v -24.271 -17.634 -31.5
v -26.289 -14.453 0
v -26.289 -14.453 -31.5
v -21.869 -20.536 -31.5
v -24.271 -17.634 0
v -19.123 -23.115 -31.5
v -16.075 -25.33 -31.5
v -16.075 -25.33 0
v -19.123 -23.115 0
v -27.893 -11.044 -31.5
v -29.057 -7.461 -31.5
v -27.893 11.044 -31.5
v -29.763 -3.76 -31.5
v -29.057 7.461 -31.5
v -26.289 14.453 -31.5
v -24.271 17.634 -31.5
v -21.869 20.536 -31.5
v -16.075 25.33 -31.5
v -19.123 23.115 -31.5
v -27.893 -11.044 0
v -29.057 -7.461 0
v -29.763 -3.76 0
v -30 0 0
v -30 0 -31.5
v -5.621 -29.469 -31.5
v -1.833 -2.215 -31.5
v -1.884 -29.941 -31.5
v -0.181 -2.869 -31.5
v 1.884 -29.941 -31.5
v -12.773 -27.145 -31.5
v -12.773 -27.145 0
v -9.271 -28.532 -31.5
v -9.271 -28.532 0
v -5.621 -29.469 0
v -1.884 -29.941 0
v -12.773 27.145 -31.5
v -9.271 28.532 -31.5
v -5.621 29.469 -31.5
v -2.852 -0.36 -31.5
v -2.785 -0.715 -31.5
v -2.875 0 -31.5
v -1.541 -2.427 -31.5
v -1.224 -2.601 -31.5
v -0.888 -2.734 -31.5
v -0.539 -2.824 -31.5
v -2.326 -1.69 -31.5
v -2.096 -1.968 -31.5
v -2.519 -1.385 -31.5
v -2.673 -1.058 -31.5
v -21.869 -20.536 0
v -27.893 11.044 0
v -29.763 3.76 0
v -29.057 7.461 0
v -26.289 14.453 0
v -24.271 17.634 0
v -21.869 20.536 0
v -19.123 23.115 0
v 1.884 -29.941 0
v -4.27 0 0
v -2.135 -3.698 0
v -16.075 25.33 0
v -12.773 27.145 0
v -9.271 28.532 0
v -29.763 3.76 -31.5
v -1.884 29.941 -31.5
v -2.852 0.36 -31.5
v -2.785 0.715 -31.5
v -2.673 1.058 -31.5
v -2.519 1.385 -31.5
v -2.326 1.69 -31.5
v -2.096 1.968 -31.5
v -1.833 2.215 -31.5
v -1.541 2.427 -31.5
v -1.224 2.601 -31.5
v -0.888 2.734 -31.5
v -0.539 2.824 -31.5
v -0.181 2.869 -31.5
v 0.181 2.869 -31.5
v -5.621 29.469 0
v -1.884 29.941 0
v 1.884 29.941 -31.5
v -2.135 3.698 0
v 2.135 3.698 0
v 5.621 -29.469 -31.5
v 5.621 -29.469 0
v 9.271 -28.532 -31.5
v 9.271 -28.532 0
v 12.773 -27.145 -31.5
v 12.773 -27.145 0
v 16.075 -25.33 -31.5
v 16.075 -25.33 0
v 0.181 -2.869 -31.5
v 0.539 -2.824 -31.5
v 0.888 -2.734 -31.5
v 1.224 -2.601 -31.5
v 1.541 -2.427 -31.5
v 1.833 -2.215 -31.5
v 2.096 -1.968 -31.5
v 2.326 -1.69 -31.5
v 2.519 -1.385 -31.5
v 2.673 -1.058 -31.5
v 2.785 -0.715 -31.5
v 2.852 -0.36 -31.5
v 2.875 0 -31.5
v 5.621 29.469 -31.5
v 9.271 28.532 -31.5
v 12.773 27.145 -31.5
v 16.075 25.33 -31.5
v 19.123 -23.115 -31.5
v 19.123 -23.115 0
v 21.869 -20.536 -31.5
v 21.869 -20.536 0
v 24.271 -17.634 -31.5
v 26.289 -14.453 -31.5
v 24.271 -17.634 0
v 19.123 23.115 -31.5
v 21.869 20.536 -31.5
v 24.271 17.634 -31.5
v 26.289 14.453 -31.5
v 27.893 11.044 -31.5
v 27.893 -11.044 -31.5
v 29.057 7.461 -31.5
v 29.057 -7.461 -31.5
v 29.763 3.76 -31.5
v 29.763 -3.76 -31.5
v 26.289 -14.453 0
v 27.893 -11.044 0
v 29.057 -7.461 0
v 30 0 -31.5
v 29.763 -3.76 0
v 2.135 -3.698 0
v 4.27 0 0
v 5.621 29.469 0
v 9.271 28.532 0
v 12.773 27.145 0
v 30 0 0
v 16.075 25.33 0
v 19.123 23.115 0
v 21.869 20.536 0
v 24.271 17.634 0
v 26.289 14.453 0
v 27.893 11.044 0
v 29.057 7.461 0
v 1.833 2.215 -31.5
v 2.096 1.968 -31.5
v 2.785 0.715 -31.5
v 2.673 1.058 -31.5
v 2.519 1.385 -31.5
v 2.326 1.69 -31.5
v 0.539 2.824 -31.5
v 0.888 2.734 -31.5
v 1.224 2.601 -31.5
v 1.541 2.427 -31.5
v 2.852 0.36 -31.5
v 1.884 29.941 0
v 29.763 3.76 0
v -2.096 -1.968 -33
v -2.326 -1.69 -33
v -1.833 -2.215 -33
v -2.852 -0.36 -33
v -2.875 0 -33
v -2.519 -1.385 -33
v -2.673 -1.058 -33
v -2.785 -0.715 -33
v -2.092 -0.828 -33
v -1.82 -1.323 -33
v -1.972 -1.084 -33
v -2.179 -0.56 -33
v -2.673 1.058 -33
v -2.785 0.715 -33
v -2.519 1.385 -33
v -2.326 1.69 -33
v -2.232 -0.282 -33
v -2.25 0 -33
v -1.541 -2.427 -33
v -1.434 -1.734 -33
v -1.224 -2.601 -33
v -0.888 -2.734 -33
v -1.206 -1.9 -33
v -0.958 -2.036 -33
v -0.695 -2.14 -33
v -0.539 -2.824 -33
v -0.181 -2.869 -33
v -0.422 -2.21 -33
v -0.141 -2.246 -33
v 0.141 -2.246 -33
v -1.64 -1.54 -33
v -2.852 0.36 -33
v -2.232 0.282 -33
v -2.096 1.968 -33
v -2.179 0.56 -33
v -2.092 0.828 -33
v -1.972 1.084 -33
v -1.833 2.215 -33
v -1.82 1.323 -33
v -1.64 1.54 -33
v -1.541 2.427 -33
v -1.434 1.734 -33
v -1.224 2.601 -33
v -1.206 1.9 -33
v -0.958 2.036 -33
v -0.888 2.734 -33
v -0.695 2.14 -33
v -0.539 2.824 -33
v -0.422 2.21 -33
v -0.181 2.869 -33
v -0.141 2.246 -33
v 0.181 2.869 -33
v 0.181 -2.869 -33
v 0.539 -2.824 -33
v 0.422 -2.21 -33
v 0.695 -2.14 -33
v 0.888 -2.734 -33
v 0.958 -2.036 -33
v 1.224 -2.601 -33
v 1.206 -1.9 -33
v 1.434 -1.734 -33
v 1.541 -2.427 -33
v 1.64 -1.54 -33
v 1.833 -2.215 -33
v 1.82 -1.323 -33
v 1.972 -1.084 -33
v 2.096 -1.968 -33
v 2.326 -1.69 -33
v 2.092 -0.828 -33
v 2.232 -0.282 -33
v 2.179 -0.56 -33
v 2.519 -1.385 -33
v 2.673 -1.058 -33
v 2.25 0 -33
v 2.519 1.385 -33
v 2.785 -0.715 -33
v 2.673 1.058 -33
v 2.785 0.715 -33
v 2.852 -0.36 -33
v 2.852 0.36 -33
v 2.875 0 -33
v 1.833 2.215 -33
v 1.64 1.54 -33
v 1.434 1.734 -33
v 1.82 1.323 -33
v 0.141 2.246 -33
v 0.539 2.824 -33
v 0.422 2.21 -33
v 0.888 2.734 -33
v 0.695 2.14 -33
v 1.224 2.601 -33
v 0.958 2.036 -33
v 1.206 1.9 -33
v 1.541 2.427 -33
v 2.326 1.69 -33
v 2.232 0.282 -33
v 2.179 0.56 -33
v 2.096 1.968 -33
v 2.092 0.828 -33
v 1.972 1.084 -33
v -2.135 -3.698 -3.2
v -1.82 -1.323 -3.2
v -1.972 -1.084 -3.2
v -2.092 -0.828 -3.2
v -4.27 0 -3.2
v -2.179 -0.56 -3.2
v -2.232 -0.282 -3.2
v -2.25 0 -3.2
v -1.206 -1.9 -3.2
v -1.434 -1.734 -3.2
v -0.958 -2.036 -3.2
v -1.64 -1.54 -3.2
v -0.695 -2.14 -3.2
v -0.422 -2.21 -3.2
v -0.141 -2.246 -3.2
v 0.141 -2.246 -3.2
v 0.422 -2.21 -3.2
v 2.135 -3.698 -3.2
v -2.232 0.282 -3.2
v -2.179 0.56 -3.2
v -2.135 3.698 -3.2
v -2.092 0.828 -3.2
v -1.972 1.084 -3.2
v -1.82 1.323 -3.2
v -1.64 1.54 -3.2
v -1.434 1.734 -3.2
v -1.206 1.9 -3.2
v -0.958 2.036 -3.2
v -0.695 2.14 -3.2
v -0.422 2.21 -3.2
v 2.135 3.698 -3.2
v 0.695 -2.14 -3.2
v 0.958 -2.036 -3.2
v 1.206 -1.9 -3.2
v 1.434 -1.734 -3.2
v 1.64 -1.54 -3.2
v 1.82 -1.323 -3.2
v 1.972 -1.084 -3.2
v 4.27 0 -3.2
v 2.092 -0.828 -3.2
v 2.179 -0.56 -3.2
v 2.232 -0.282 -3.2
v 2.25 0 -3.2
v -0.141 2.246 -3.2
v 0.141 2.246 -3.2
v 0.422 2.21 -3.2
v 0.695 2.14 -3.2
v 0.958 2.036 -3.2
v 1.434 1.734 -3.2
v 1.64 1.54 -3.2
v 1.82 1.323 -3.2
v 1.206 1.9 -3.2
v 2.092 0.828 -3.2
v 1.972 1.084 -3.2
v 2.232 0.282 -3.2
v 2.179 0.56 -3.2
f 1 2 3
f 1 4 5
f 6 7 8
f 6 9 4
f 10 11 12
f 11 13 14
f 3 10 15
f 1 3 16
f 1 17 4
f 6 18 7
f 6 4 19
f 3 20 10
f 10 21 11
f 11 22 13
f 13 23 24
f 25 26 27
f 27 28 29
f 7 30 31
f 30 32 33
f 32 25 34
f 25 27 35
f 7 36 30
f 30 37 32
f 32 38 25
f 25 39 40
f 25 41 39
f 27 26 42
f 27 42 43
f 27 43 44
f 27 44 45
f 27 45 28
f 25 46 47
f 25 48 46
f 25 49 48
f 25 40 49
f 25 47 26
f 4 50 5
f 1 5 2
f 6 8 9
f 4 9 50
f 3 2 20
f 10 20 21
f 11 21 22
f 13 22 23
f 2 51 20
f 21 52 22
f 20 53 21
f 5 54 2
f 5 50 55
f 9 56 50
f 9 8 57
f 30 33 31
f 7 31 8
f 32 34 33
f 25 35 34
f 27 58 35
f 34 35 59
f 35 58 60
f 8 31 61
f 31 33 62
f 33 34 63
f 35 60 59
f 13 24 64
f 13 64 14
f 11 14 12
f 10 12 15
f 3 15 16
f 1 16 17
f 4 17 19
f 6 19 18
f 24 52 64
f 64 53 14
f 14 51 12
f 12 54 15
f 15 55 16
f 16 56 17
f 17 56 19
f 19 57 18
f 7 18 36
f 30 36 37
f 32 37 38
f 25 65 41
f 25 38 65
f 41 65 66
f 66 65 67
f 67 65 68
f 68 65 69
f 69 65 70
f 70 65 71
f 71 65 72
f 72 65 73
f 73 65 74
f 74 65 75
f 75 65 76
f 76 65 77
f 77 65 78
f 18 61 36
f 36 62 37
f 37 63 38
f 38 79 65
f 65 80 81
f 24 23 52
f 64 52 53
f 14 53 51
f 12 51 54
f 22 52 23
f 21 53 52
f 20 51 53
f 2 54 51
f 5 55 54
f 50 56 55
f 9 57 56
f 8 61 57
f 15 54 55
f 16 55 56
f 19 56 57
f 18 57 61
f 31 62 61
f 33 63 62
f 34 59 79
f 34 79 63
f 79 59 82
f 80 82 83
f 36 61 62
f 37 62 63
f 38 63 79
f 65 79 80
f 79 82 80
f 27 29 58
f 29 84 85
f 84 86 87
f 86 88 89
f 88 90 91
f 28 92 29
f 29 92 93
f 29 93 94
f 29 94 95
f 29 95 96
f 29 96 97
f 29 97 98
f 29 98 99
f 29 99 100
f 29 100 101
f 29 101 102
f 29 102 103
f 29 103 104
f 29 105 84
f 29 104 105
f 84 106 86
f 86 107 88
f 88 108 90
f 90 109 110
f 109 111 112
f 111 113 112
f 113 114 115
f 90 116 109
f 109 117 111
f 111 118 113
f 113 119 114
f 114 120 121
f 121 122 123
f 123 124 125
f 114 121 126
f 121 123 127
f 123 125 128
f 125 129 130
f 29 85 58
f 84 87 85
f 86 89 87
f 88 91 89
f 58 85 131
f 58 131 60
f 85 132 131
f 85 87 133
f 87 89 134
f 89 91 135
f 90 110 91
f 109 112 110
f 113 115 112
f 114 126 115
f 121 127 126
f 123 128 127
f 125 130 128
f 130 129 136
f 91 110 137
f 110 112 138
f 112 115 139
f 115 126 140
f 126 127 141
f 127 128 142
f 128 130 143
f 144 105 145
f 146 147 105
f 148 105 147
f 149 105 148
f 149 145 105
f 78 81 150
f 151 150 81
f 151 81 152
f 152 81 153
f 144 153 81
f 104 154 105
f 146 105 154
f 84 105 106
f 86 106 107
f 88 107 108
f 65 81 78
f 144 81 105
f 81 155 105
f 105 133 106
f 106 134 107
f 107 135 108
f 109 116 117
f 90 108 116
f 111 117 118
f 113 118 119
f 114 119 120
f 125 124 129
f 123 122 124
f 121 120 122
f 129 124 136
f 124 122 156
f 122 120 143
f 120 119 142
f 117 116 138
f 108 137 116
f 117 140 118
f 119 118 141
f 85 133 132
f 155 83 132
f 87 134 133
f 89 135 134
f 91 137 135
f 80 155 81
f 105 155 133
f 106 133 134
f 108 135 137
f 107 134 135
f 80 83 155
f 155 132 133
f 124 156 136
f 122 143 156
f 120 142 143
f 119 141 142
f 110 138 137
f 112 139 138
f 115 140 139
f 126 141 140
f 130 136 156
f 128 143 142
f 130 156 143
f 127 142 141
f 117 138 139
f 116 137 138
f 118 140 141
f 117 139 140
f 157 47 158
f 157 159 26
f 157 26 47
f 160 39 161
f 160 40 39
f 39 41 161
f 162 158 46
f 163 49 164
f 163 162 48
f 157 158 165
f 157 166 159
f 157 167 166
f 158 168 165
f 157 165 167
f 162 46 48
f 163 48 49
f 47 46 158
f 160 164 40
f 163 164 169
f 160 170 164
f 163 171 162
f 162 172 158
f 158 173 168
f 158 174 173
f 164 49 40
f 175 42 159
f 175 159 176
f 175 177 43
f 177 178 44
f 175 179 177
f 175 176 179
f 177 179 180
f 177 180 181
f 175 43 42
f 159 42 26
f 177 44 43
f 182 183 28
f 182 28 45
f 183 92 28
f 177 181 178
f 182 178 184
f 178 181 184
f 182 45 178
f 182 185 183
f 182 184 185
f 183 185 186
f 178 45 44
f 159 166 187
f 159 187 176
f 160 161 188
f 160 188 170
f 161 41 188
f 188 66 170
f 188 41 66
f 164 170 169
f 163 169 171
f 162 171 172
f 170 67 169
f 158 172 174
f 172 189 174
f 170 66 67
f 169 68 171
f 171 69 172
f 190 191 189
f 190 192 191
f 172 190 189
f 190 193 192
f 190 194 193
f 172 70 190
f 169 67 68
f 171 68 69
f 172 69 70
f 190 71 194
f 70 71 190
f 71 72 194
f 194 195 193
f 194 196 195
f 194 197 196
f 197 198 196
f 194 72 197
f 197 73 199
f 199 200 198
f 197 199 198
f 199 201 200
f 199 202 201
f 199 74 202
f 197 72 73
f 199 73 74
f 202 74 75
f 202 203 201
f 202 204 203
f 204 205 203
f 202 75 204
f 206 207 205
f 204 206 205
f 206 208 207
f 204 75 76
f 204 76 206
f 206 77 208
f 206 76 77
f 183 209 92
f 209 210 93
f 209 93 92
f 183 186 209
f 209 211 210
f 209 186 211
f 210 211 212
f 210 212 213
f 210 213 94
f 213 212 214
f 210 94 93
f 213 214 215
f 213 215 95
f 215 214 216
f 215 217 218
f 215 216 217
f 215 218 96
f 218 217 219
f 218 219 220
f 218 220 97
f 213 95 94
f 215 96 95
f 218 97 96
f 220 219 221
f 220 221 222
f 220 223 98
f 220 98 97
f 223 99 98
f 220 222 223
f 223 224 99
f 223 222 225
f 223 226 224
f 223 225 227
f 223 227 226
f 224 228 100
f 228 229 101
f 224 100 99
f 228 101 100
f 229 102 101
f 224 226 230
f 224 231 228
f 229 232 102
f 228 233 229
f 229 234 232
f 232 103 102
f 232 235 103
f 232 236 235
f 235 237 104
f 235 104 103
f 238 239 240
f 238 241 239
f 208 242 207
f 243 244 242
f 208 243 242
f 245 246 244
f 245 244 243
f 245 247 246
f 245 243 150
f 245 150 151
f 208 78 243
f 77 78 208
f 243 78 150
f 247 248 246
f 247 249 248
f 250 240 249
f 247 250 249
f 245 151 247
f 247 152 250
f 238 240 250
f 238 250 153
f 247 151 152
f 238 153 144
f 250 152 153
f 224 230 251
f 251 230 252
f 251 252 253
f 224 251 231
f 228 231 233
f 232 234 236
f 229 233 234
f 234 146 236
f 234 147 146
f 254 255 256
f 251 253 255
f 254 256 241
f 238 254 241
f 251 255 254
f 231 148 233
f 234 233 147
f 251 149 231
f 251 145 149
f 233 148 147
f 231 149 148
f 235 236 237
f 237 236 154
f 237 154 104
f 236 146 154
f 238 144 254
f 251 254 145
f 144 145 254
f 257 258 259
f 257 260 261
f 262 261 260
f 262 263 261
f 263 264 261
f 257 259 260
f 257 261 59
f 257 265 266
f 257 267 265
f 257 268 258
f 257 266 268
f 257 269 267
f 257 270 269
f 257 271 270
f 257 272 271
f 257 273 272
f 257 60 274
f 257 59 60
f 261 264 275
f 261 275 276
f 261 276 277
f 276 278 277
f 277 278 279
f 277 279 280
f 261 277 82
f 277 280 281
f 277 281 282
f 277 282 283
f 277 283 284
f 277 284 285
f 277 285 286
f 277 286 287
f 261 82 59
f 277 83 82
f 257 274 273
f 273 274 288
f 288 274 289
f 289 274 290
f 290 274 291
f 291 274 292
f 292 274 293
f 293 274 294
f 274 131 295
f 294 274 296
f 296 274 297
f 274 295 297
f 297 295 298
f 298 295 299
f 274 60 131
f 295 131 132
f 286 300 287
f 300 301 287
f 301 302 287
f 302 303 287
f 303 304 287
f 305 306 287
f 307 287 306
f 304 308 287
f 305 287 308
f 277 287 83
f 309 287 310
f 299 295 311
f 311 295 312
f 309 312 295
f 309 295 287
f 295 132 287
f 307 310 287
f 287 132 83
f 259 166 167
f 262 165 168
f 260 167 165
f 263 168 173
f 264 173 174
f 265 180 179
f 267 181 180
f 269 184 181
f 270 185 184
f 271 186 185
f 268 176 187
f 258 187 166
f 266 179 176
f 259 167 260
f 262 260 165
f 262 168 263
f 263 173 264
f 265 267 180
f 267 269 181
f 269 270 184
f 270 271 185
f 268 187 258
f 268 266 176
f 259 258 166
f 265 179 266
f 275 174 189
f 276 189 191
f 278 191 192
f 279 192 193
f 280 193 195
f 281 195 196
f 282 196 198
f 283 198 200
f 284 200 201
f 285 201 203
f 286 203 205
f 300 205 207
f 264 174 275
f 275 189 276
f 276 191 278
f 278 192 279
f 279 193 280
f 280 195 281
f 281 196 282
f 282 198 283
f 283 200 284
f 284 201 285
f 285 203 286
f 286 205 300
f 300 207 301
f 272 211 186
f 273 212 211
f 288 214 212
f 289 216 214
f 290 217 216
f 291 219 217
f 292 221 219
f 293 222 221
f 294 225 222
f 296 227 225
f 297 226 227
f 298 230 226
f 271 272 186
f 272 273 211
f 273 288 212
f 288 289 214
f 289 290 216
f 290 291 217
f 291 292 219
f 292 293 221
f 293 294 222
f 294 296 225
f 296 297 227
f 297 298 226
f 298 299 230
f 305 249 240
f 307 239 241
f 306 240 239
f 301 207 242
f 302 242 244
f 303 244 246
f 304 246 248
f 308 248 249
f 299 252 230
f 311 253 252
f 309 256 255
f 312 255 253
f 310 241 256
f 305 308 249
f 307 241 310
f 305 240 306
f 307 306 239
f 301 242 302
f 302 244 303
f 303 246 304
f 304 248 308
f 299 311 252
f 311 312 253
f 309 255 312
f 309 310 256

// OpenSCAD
$fn = 50;


difference() {
	union() {
		translate(v = [0, 0, -31.5000000000]) {
			cylinder(h = 31.5000000000, r = 30.0000000000);
		}
		#translate(v = [0, 0, -33.0000000000]) {
			cylinder(h = 33, r = 2.8750000000);
		}
	}
	union() {
		translate(v = [0, 0, 0]) {
			rotate(a = [0, 0, 0]) {
				difference() {
					union() {
						translate(v = [0, 0, -3.2000000000]) {
							linear_extrude(height = 3.2000000000) {
								polygon(points = [[4.2698000000, 0.0000000000], [2.1349000000, 3.6977552691], [-2.1349000000, 3.6977552691], [-4.2698000000, 0.0000000000], [-2.1349000000, -3.6977552691], [2.1349000000, -3.6977552691]]);
							}
						}
					}
					union();
				}
			}
		}
		#translate(v = [0, 0, -100.0000000000]) {
			cylinder(h = 200, r = 2.2500000000);
		}
	}
}
